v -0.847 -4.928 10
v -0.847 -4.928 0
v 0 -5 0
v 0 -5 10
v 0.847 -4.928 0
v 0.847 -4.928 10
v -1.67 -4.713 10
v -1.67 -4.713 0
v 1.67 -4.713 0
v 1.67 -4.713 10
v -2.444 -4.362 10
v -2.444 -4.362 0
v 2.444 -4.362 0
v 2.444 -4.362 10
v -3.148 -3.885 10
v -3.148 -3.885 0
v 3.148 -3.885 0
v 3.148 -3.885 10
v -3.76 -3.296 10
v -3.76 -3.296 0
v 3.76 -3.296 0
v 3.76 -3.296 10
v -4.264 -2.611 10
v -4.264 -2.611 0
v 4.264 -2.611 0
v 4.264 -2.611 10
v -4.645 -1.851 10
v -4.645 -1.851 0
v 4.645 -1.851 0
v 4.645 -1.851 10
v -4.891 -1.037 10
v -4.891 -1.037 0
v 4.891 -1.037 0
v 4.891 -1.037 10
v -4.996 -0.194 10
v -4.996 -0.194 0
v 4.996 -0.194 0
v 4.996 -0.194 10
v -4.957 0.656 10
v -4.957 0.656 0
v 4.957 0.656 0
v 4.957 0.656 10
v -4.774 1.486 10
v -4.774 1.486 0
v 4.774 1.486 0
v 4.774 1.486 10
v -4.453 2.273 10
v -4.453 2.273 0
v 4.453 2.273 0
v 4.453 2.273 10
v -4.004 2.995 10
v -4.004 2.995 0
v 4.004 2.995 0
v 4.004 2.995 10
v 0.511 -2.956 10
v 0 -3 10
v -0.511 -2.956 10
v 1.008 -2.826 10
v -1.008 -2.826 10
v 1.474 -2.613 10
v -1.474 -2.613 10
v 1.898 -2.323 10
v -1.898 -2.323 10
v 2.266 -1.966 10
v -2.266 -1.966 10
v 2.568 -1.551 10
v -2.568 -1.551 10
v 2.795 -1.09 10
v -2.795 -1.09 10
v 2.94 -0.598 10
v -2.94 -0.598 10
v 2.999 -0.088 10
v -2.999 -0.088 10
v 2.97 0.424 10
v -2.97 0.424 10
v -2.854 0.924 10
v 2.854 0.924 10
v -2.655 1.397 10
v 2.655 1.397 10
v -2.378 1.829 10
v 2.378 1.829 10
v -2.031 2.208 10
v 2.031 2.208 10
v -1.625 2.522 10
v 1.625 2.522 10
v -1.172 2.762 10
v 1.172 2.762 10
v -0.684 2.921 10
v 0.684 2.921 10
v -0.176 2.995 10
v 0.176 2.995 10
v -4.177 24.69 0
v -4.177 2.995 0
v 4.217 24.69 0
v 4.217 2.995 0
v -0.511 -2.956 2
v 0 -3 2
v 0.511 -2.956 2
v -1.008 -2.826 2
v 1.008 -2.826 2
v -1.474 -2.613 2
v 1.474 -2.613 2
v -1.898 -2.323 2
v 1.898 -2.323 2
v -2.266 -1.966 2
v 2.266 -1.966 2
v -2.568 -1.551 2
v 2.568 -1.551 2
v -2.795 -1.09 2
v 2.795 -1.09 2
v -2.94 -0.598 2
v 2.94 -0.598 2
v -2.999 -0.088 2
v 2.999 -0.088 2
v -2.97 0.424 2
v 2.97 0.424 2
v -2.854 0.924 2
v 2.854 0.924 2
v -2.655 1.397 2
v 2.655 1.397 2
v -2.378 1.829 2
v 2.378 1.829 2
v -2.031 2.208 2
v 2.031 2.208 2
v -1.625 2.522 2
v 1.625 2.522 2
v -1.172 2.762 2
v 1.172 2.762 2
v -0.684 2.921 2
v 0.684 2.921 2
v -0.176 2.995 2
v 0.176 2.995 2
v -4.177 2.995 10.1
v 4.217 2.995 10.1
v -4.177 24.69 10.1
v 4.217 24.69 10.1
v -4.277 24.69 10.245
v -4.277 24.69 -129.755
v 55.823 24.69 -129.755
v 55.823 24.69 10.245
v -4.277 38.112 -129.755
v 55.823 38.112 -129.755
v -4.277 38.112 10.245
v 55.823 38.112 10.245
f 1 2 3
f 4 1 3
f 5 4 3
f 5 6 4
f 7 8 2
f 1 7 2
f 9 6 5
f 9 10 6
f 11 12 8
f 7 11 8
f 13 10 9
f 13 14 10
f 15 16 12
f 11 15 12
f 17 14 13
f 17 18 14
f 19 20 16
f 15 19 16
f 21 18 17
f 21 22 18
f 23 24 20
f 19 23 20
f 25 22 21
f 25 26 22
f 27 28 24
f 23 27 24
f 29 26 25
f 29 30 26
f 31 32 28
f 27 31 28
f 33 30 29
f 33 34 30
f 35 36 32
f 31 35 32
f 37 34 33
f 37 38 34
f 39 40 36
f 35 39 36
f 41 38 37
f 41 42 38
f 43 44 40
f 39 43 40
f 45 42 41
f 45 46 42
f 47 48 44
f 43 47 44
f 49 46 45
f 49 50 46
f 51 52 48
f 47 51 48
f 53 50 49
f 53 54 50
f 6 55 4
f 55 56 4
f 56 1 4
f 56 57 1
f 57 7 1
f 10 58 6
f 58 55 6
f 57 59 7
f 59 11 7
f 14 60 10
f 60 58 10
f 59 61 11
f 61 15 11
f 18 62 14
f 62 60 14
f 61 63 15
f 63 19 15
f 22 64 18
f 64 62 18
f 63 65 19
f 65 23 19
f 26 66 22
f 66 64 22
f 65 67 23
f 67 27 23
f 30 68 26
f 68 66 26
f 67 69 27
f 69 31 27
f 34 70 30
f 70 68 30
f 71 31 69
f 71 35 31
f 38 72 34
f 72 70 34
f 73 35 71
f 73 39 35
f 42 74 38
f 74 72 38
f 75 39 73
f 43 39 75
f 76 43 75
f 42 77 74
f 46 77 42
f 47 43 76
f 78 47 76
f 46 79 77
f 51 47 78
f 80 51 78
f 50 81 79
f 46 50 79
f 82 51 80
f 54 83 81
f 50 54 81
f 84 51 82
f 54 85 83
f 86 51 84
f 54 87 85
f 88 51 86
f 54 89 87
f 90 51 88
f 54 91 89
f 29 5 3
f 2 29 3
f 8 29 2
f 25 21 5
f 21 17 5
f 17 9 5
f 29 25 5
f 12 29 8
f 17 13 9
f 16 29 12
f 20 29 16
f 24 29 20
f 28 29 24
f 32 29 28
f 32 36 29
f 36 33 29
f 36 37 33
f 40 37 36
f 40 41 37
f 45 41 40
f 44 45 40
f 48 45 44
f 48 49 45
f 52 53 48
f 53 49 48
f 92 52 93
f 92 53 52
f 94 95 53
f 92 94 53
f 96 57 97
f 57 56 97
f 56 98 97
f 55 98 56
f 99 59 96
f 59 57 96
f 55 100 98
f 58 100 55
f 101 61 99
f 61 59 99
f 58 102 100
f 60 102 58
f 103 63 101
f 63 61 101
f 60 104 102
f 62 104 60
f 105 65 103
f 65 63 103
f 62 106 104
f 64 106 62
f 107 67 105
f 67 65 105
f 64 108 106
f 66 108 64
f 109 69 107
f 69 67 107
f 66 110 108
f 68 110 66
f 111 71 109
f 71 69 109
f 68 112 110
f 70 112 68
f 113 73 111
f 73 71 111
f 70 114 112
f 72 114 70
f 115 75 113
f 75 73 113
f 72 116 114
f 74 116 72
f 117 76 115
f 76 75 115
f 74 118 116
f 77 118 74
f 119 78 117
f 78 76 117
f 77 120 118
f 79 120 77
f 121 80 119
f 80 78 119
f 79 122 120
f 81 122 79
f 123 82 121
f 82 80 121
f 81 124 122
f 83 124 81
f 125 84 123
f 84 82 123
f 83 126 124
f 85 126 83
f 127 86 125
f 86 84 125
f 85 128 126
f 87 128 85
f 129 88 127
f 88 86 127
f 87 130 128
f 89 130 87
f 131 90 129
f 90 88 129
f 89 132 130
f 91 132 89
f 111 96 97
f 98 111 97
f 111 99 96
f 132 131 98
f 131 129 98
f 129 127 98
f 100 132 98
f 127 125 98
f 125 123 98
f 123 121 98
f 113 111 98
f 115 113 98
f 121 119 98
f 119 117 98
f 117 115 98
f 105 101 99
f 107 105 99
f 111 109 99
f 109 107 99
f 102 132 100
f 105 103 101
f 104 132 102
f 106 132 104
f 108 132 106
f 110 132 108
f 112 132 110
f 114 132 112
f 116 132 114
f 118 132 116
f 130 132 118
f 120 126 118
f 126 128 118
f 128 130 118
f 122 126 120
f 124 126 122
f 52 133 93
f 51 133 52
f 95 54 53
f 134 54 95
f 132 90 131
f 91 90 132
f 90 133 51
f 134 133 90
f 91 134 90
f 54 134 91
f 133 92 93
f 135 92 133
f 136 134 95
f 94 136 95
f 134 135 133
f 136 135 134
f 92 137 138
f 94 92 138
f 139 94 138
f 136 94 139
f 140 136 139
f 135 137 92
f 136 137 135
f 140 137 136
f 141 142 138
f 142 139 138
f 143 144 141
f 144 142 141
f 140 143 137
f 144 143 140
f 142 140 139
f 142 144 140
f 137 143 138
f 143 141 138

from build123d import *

# Parameters (mm, degrees)
SKETCH_1_R           = 5
EXTRUDE_1_DEPTH      = 10
SKETCH_2_R           = 3
CUT_EXTRUDE_1_DEPTH  = 8
EXTRUDE_2_DEPTH      = 0.1
EXTRUDE_2_DEPTH_BACK = 10
SKETCH_4_W           = 8.393953891
SKETCH_4_H           = 2.961503145
SKETCH_5_W           = 8.393953891
SKETCH_5_H           = 10.1
EXTRUDE_3_DEPTH      = 30
EXTRUDE_4_DEPTH      = 0.1
EXTRUDE_4_DEPTH_BACK = 60
SKETCH_6_W           = 140
SKETCH_6_H           = 13.422298932


with BuildPart() as part:
    # 草图1 → 凸台-拉伸1 (new body)
    with BuildSketch(Plane.XY):
        Circle(SKETCH_1_R)
    extrude(amount=EXTRUDE_1_DEPTH)

    # 草图2 → 切除-拉伸1 (cut)
    with BuildSketch(Plane.XY.offset(10)):
        Circle(SKETCH_2_R)
    extrude(amount=-CUT_EXTRUDE_1_DEPTH, mode=Mode.SUBTRACT)

    # 草图4 → 凸台-拉伸2 (add, two sides: drawn at the far end of the back side and taken through both)
    with BuildSketch(Plane.XY.offset(10).offset(-EXTRUDE_2_DEPTH_BACK)):
        with Locations((0.020379312, 4.475569238)):
            Rectangle(SKETCH_4_W, SKETCH_4_H)
    extrude(amount=EXTRUDE_2_DEPTH + EXTRUDE_2_DEPTH_BACK)

    # 草图5 → 凸台-拉伸3 (add)
    with BuildSketch(Plane(origin=(0, 5.95632081, 0), x_dir=(1, 0, 0), z_dir=(0, 1, 0))):
        with Locations((0.020379312, -5.05)):
            Rectangle(SKETCH_5_W, SKETCH_5_H)
    extrude(amount=EXTRUDE_3_DEPTH)

    # 草图6 → 凸台-拉伸4 (add, two sides: drawn at the far end of the back side and taken through both)
    with BuildSketch(Plane.ZY.offset(4.176597634).offset(-EXTRUDE_4_DEPTH_BACK)):
        with Locations((-59.754924963, 31.401268081)):
            Rectangle(SKETCH_6_W, SKETCH_6_H)
    extrude(amount=EXTRUDE_4_DEPTH + EXTRUDE_4_DEPTH_BACK)


solid = part.part
